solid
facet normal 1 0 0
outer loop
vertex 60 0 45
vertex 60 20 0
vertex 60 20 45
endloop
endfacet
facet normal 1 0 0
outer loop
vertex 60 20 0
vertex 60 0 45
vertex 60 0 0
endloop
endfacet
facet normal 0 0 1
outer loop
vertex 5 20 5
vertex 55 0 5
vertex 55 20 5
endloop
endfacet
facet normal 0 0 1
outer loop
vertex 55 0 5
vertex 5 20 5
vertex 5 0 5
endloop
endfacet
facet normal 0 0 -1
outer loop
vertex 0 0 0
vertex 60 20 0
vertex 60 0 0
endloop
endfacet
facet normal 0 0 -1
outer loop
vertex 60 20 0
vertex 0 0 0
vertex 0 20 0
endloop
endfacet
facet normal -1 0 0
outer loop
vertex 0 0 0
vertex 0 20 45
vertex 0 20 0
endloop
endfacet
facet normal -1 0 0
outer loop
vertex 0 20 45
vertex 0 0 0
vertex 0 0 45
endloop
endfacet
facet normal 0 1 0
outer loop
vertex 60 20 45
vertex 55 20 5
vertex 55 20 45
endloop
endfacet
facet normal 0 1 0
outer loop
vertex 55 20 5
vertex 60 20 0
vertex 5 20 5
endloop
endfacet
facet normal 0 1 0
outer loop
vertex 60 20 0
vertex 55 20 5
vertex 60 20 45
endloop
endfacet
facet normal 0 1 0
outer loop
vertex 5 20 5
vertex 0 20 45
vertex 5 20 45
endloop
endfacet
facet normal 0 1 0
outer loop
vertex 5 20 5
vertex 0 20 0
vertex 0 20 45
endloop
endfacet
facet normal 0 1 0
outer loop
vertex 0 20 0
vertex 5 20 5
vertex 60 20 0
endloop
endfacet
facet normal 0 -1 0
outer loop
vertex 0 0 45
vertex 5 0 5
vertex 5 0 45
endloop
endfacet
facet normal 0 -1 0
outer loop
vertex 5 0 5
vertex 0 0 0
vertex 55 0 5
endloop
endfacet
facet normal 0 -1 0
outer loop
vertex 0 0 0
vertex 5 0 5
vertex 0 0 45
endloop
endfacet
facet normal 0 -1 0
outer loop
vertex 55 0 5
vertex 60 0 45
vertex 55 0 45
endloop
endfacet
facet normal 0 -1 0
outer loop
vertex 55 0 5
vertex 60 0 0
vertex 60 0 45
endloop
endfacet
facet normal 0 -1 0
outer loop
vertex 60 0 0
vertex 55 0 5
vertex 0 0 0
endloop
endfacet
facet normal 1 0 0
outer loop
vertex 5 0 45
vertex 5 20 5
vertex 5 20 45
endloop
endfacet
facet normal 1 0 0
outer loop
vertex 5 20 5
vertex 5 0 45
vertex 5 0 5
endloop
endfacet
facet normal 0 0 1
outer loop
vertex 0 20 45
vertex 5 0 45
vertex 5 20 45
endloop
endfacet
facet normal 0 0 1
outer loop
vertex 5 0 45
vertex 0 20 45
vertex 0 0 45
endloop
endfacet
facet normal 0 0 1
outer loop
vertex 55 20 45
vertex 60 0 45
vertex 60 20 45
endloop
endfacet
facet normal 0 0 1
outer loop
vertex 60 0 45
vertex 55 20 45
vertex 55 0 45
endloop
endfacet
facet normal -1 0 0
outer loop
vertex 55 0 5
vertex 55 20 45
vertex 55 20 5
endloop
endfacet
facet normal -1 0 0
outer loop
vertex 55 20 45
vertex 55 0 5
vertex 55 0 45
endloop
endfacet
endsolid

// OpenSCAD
// Dimensions for the U-shaped bracket
base_length = 60;  // Length of the horizontal base
base_width = 20;   // Width of the horizontal base
base_thickness = 5; // Thickness of the horizontal base

side_wall_height = 40; // Height of the vertical side walls
side_wall_thickness = 5; // Thickness of the vertical side walls

module u_shaped_bracket() {
    // Horizontal base
    cube([base_length, base_width, base_thickness]);

    // Left vertical side wall
    translate([0, 0, base_thickness])
        cube([side_wall_thickness, base_width, side_wall_height]);

    // Right vertical side wall
    translate([base_length - side_wall_thickness, 0, base_thickness])
        cube([side_wall_thickness, base_width, side_wall_height]);
}

// Render the U-shaped bracket
u_shaped_bracket();
